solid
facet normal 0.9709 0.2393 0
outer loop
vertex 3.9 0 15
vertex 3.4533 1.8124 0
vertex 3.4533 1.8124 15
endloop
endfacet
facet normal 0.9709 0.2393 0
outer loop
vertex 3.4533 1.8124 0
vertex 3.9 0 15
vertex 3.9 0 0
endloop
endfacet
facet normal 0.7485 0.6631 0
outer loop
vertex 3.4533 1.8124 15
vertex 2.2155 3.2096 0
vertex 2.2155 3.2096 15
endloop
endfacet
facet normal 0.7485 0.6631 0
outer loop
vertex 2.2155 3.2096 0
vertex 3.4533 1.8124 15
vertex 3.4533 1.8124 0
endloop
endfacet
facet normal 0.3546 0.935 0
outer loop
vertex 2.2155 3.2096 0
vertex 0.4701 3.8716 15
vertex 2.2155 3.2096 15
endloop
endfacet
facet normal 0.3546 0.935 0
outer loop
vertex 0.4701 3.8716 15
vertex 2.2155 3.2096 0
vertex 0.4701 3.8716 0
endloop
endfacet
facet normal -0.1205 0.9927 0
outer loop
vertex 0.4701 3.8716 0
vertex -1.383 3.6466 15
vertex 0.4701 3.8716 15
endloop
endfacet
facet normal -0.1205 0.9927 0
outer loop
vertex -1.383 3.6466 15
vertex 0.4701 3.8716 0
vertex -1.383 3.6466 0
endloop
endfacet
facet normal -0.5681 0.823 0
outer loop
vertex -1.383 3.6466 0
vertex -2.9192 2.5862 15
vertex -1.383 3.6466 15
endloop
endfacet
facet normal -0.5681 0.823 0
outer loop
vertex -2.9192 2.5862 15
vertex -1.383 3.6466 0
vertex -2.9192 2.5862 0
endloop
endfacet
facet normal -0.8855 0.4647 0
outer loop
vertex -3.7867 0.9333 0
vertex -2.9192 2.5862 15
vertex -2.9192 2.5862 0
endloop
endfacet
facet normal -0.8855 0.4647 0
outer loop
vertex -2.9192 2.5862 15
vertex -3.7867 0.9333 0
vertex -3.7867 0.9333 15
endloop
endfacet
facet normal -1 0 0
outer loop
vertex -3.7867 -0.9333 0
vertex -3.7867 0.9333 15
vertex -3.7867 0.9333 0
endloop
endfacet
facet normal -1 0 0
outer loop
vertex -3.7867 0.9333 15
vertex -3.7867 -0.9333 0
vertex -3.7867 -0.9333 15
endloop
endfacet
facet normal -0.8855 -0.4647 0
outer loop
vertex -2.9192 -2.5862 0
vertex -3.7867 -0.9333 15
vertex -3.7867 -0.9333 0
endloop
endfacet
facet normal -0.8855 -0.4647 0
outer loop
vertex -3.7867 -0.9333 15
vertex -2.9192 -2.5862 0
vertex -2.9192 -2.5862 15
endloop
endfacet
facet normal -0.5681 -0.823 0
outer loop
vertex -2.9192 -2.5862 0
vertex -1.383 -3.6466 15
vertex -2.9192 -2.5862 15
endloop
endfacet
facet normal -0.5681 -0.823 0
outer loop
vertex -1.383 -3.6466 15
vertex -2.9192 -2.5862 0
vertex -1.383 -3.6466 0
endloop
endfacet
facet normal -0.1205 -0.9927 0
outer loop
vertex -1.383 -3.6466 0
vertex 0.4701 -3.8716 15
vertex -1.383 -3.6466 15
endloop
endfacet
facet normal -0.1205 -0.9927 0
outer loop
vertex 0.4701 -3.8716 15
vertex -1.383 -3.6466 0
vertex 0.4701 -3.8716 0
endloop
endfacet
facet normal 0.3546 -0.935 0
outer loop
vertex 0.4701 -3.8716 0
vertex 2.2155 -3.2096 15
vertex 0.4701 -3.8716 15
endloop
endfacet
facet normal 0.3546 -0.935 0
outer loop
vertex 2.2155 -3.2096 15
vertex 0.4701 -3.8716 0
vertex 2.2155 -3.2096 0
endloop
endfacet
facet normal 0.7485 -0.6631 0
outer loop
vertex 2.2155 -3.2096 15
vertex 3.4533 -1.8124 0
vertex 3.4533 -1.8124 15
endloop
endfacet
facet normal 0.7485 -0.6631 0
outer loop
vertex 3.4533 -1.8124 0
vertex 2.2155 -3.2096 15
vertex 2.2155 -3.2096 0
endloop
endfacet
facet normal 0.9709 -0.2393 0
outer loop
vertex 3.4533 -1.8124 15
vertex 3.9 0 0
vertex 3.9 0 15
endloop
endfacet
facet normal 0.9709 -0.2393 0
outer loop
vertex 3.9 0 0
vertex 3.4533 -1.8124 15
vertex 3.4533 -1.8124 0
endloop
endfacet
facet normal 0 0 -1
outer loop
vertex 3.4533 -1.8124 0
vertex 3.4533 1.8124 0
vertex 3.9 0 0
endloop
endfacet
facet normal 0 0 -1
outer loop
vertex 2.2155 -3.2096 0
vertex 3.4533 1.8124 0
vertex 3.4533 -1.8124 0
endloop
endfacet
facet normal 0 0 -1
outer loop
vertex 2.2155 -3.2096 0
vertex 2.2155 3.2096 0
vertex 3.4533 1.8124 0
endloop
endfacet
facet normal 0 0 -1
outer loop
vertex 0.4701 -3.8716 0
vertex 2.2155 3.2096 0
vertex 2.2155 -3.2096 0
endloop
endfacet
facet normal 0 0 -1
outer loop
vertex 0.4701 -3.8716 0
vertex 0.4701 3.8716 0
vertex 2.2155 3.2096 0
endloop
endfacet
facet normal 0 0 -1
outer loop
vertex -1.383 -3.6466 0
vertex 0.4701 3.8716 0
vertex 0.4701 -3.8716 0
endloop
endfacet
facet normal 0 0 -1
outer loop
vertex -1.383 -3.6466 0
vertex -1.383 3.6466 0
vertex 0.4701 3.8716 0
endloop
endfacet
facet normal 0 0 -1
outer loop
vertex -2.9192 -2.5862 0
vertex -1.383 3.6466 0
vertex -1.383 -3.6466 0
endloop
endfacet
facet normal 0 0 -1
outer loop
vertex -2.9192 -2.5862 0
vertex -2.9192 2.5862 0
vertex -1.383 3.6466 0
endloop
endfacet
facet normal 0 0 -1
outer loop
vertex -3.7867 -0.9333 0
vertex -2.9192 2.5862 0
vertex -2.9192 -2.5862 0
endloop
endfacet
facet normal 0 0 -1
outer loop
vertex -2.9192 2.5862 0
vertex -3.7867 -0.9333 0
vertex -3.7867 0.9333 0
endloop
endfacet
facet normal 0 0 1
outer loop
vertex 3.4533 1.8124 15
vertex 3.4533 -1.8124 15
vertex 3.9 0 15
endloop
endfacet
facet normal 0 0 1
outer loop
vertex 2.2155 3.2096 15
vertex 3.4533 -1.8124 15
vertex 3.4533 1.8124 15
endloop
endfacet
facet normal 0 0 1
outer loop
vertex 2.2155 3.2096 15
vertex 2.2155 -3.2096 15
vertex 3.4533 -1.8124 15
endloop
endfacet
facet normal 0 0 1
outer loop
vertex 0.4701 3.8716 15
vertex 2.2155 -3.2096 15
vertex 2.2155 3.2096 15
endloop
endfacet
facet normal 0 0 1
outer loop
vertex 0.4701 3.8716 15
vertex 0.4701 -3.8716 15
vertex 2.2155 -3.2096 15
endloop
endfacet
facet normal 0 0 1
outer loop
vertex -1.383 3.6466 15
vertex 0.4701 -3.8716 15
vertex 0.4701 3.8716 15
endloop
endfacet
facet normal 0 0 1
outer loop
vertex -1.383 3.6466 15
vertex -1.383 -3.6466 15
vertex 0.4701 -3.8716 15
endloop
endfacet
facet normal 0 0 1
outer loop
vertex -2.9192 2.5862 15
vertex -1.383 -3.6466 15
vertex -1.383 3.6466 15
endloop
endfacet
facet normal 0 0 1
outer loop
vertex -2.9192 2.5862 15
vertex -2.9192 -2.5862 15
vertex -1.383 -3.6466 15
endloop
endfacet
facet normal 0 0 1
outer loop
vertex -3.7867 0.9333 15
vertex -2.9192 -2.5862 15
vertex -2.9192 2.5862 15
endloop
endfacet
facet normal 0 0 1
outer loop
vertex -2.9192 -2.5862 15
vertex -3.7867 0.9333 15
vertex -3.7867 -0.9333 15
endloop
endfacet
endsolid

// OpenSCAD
// file: dimensions.scad
// Shared dimensions for SV08 Max Table Components
// Include this file in all component SCAD files

// Convert inches to mm
inch = 25.4;

// Table dimensions
table_width = 802;  // mm
table_depth = 802;  // mm
table_height = 463; // mm (desk height - printer bed at ~30" from floor)

// Component dimensions
leg_size = 4 * inch;          // 4x4 inch legs (101.6mm)
rail_thickness = 30;          // mm (printable thickness)
rail_width = 80;              // mm (printable width)
top_thickness = 25;           // mm

// Connection system dimensions
bolt_hole_diameter = 8;       // M8 bolts
counterbore_diameter = 16;    // For bolt heads
counterbore_depth = 10;       // mm

// Rail heights
bottom_rail_height = 200;     // mm
mid_rail_height = 250;        // mm
top_rail_height = table_height - top_thickness - rail_width; // Calculated

// Calculated rail lengths
long_rail_length = table_width - 2 * leg_size;   // 599mm
short_rail_length = table_depth - 2 * leg_size;  // 599mm

// Table top segment dimensions
segment_width = 150;          // mm
segment_depth = table_depth;  // 802mm
final_segment_width = 52;     // mm (to complete 802mm total width)

// Alignment pin dimensions
pin_diameter = 7.8;           // mm (slightly undersized for press fit)
pin_length = 15;              // mm
pin_hole_diameter = 8;        // mm
// main file
// SV08 Max Table Alignment Pin Component
include <dimensions.scad>

module alignment_pin() {
    cylinder(d=pin_diameter, h=pin_length); // Slightly undersized for press fit
}

// Generate single alignment pin for STL export
alignment_pin();
